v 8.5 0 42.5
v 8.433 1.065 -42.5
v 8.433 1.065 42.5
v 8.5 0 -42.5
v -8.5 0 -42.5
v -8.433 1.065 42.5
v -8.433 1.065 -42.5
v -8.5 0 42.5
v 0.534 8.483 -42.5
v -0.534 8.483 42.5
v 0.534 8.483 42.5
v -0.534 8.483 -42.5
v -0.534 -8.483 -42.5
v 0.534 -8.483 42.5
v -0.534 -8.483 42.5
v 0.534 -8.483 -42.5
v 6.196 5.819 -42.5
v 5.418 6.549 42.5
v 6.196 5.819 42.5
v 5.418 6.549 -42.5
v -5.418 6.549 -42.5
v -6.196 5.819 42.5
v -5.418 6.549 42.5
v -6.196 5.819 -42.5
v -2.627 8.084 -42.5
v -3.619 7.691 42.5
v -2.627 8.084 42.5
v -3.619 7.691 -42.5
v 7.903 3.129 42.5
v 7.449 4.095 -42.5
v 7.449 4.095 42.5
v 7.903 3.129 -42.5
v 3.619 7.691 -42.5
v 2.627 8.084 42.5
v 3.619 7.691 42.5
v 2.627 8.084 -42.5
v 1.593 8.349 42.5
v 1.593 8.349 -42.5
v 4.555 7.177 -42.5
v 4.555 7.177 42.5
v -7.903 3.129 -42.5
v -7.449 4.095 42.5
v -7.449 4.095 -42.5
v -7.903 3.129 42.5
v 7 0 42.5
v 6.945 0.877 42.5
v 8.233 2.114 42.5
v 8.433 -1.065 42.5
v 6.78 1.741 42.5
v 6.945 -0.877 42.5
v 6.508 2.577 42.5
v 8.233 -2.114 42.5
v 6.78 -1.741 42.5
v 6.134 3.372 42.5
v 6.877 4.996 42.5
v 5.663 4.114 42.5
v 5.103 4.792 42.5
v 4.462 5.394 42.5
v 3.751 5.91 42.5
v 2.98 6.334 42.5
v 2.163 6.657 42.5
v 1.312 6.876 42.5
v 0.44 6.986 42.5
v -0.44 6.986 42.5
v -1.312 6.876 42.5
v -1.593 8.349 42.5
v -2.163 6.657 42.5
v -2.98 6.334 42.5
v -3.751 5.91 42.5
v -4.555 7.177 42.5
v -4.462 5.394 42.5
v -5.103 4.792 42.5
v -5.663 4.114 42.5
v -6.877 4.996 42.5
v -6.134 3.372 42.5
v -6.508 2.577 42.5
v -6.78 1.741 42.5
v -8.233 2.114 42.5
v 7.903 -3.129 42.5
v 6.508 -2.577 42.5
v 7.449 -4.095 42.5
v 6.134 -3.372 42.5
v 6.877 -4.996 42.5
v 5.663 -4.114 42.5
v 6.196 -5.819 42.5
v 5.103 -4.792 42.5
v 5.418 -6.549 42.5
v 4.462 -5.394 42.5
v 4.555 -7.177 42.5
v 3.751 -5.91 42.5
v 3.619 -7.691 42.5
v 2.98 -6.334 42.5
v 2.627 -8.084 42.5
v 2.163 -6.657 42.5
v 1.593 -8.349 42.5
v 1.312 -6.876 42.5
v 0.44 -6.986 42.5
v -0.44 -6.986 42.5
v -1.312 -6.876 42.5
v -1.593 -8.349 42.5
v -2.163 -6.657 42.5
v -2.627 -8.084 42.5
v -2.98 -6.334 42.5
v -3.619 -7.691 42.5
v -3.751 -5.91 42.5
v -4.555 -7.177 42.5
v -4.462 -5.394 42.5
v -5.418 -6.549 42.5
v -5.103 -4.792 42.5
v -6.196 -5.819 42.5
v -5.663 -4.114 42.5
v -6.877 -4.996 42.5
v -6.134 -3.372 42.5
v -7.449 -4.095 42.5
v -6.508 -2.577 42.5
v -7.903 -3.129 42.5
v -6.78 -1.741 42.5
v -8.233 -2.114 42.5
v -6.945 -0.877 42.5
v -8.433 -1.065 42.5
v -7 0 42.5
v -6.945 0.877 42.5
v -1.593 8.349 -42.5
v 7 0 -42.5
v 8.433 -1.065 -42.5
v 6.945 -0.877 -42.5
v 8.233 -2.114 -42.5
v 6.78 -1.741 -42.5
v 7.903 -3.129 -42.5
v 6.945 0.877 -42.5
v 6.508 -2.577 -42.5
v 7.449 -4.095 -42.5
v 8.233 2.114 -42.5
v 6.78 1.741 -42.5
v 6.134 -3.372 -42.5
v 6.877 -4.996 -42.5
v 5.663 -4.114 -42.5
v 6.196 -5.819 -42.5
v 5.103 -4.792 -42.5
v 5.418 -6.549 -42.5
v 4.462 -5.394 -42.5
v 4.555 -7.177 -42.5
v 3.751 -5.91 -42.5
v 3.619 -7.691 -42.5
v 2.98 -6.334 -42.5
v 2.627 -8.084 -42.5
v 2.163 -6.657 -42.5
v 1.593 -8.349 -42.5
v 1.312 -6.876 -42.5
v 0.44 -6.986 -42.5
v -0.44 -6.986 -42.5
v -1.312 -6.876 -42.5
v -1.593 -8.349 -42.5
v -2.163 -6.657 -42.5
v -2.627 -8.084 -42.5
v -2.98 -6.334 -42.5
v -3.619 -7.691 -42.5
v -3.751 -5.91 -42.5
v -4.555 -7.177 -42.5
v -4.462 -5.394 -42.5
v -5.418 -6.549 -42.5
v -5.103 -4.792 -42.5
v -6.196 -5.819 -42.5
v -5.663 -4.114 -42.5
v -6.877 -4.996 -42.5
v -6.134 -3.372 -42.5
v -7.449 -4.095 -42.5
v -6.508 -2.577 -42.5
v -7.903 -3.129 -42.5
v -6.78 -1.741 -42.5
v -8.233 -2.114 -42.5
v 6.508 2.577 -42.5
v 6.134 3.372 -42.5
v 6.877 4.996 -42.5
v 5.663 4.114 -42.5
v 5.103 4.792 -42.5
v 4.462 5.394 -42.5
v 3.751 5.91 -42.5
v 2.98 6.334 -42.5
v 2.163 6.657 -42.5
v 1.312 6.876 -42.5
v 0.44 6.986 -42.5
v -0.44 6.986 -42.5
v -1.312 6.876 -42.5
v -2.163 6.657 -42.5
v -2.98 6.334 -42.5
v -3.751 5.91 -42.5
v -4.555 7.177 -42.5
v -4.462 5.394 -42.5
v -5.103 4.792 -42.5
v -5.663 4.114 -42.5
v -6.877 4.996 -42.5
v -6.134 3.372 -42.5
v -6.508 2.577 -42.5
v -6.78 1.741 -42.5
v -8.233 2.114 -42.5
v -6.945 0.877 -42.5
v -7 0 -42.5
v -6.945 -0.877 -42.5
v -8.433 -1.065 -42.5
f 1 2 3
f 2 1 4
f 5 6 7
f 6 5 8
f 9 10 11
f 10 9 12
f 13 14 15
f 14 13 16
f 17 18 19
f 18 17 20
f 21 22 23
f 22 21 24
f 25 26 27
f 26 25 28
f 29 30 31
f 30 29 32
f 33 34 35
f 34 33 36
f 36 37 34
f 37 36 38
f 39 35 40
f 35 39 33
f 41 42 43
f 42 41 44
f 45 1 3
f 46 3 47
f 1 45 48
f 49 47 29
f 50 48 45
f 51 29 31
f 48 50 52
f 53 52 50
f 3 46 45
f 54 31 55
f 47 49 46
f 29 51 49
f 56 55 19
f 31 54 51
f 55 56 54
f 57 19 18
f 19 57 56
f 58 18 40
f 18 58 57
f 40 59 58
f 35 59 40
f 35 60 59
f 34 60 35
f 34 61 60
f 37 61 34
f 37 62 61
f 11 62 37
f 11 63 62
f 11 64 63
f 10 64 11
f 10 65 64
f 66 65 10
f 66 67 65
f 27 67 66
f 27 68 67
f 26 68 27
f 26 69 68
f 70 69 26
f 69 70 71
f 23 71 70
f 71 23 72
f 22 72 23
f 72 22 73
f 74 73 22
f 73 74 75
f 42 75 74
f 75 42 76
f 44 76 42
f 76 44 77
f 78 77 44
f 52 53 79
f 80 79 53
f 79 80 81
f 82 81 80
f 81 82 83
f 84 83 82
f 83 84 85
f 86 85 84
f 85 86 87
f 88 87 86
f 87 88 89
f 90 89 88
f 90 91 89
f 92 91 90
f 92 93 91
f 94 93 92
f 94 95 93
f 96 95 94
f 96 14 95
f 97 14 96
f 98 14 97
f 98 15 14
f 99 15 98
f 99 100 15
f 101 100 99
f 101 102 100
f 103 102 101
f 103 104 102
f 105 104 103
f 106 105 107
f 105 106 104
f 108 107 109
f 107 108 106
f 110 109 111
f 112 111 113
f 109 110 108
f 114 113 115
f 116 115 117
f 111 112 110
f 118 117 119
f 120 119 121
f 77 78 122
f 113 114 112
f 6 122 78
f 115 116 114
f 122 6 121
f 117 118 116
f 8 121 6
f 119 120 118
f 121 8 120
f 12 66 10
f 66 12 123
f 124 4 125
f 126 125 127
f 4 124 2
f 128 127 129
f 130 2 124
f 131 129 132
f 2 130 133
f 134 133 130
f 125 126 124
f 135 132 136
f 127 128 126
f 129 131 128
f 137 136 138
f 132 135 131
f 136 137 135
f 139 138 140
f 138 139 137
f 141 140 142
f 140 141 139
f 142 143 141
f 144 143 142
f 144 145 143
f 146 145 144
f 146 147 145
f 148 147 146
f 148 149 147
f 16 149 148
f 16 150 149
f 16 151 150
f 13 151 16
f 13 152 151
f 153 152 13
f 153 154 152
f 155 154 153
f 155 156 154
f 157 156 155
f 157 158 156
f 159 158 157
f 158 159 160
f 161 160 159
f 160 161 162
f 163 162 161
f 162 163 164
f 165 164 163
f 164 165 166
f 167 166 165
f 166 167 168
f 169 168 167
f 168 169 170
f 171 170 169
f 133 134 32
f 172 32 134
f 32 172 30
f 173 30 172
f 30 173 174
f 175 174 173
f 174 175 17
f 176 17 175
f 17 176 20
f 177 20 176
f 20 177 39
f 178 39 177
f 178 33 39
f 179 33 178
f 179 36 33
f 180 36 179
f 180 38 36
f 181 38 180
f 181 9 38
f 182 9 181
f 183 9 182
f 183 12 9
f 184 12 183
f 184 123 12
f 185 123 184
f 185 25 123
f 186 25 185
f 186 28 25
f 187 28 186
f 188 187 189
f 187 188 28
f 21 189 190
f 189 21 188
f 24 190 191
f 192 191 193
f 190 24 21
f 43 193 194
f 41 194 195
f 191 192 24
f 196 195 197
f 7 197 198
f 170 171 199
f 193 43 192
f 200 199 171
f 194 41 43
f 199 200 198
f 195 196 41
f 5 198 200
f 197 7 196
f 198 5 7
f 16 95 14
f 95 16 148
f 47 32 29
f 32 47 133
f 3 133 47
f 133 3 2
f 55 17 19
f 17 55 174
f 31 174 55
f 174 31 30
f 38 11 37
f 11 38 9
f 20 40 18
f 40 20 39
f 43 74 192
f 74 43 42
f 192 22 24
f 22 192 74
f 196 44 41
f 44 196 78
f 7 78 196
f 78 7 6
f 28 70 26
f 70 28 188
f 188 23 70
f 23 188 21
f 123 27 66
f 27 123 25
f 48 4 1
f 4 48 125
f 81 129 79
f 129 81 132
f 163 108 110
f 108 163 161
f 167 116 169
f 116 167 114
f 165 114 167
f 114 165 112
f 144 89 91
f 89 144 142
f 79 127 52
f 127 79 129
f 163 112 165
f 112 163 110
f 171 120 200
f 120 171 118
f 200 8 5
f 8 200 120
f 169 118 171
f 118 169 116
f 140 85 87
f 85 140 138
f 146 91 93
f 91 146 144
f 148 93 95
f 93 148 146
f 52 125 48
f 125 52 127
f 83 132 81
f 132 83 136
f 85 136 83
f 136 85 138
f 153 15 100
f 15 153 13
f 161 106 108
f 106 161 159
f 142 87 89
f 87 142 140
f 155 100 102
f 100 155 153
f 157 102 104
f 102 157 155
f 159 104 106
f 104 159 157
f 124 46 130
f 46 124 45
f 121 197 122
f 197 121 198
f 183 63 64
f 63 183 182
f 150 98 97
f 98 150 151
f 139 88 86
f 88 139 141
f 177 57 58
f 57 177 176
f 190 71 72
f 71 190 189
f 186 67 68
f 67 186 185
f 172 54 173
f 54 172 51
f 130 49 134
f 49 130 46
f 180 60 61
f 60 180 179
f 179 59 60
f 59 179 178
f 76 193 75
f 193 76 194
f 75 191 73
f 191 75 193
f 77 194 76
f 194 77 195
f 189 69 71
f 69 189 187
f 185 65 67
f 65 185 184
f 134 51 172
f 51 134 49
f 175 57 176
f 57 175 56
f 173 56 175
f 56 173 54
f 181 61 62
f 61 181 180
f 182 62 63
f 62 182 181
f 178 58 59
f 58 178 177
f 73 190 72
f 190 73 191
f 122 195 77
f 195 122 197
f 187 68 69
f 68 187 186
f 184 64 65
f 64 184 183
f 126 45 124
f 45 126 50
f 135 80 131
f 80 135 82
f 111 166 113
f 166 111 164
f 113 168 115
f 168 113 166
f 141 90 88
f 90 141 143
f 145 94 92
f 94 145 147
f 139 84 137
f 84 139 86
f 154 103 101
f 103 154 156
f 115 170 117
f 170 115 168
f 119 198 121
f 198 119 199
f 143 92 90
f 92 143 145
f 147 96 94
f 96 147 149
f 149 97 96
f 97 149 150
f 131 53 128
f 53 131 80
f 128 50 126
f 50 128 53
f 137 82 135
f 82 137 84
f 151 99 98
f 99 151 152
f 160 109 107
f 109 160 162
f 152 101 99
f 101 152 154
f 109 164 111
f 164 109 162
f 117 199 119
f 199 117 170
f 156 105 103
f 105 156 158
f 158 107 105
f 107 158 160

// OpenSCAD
$fn = 50;


difference() {
	union() {
		translate(v = [0, 0, -42.5000000000]) {
			cylinder(h = 85, r = 8.5000000000);
		}
	}
	union() {
		translate(v = [0, 0, -100.0000000000]) {
			cylinder(h = 200, r = 7);
		}
	}
}
